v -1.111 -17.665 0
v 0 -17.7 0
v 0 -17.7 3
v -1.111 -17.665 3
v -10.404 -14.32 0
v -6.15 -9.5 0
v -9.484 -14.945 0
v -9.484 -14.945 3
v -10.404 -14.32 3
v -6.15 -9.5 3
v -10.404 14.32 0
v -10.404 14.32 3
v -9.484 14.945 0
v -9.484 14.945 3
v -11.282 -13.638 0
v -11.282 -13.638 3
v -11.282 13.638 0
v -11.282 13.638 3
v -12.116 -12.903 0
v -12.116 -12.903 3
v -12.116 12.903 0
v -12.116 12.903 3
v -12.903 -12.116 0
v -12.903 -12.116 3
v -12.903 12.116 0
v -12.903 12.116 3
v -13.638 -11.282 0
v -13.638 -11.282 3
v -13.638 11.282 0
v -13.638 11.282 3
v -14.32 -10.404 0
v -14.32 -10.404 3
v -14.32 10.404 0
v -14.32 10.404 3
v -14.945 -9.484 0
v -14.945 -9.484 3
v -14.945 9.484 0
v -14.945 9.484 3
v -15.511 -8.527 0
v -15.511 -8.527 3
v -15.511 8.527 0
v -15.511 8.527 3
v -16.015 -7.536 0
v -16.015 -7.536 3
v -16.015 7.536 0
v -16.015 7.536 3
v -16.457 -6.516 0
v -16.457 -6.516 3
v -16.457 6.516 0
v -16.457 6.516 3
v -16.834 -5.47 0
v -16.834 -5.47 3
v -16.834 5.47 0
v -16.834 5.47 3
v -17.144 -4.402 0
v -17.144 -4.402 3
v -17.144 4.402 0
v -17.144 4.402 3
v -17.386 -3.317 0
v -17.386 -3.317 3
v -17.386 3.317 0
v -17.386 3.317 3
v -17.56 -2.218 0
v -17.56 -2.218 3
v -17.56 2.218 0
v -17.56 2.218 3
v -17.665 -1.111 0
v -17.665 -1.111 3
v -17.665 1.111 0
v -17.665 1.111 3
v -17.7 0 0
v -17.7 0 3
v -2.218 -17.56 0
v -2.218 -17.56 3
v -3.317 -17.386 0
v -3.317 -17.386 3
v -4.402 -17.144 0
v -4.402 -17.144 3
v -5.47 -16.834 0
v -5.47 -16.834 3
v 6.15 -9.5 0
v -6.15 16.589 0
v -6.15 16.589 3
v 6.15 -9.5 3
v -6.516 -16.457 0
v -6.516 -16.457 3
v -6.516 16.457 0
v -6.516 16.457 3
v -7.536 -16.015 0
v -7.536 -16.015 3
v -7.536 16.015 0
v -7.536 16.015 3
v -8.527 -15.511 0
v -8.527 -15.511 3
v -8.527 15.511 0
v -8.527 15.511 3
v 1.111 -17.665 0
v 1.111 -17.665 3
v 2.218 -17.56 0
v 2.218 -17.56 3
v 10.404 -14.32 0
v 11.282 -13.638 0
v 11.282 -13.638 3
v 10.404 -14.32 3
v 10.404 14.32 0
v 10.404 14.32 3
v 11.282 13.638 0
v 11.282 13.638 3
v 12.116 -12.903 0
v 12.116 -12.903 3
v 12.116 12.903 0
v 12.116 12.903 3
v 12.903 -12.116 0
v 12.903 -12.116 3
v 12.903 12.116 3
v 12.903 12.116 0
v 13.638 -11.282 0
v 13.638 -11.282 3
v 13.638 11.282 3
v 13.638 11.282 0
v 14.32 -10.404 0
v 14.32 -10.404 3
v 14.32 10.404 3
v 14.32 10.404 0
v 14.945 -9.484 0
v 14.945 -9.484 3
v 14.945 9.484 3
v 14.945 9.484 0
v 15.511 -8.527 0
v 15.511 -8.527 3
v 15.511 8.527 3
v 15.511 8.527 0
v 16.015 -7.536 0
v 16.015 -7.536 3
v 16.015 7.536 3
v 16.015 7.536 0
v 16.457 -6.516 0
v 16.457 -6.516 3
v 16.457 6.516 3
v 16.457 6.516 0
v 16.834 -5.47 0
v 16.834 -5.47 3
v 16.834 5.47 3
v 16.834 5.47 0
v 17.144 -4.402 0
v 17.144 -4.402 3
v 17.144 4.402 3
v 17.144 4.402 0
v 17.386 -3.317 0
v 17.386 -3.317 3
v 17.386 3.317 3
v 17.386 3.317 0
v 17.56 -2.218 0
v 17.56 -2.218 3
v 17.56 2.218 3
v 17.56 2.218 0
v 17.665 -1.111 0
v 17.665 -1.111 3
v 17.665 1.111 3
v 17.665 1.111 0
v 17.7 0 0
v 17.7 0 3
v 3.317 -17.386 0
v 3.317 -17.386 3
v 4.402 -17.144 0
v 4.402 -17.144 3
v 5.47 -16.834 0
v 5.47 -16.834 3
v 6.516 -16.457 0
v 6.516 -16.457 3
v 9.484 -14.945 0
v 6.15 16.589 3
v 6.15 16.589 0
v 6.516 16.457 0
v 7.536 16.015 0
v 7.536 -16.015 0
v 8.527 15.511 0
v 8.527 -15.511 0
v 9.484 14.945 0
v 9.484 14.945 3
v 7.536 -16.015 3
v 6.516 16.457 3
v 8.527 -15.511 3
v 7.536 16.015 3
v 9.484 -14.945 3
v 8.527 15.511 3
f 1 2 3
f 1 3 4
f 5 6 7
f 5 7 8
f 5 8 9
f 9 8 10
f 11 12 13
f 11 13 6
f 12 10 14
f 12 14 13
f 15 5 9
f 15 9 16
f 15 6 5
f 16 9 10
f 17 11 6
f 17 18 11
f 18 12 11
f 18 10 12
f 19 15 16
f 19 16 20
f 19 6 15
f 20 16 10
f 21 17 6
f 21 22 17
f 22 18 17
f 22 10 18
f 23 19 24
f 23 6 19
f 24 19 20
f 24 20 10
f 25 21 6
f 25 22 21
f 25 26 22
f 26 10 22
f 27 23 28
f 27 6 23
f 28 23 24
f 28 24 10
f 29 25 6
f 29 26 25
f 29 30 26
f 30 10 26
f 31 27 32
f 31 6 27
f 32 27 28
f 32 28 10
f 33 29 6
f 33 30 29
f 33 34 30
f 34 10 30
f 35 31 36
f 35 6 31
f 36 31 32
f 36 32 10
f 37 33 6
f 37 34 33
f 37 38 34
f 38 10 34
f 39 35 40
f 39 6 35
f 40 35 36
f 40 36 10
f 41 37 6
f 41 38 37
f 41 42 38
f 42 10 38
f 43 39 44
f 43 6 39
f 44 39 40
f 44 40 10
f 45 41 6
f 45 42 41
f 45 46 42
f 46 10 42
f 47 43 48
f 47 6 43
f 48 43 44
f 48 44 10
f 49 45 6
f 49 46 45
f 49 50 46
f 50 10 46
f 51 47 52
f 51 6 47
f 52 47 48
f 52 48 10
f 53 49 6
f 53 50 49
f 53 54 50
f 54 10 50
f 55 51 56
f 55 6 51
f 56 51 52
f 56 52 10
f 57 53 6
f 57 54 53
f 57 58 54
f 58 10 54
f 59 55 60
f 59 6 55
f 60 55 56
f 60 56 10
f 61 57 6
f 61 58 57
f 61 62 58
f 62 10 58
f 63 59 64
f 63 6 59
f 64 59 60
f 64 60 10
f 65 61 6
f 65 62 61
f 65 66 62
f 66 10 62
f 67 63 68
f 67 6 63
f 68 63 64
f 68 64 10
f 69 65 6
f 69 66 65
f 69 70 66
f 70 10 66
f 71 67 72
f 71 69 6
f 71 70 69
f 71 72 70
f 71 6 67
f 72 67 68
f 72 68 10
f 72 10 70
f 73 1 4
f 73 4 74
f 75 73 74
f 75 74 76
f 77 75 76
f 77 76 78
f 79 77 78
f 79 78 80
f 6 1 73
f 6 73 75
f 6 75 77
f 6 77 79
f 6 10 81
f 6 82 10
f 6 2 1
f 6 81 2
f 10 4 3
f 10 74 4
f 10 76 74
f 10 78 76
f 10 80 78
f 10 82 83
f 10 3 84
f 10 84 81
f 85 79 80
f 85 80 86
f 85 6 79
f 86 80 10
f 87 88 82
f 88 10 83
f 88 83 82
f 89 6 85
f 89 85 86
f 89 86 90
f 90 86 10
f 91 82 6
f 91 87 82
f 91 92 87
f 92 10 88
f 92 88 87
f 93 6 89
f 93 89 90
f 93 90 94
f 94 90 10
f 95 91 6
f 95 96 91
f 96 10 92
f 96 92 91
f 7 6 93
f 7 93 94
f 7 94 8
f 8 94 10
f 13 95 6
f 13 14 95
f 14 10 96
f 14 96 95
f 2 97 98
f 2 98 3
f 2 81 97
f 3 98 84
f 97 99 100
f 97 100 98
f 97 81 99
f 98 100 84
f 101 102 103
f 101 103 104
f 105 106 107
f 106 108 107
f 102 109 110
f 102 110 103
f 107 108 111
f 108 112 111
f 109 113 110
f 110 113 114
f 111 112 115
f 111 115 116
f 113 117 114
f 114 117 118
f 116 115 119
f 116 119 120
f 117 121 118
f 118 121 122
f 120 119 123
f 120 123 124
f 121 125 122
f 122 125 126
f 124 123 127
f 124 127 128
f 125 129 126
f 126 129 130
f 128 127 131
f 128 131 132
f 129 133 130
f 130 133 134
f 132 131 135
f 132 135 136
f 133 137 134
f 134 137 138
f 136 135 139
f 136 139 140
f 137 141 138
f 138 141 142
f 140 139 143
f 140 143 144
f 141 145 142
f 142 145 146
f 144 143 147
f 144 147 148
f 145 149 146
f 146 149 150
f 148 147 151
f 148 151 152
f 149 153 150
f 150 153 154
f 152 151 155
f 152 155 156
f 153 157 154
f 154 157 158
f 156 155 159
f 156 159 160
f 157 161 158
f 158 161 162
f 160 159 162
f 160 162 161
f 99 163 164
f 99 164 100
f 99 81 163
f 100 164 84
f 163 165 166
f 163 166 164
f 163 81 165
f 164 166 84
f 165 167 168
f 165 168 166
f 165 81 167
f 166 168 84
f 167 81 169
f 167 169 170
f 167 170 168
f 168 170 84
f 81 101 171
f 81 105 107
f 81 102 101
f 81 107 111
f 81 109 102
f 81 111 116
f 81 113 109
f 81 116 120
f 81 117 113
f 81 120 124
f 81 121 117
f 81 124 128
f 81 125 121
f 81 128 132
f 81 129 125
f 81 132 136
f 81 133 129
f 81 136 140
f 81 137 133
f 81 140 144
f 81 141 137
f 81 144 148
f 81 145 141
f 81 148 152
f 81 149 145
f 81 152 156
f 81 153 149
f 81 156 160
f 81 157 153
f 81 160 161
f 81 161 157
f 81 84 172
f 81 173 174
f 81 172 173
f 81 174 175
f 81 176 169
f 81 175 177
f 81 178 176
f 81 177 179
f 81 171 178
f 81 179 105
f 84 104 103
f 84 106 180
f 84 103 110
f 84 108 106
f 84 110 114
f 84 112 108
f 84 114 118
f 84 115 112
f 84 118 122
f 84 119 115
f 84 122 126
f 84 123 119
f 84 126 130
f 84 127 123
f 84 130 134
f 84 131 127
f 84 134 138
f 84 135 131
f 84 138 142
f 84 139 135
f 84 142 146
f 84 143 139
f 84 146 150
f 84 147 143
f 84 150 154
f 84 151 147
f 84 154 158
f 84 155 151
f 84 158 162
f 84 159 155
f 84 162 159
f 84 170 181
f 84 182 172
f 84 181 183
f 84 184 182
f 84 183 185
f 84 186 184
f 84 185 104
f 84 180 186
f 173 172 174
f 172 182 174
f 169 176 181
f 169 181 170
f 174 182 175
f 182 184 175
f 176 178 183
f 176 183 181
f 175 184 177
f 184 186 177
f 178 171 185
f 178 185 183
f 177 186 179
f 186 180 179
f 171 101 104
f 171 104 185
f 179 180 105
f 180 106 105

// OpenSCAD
// file: ../src/polyScrewThread_r1.scad
/*
 *    polyScrewThread_r1.scad    by aubenc @ Thingiverse
 *
 * This script contains the library modules that can be used to generate
 * threaded rods, screws and nuts.
 *
 * http://www.thingiverse.com/thing:8796
 *
 * CC Public Domain
 */


/* Example:
 * Just a 100mm long threaded rod.
 *
 * screw_thread(15,   // Outer diameter of the thread
 *               4,   // Step, traveling length per turn, also, tooth height, whatever...
 *              55,   // Degrees for the shape of the tooth 
 *                       (XY plane = 0, Z = 90, btw, 0 and 90 will/should not work...)
 *             100,   // Length (Z) of the tread
 *            PI/2,   // Resolution, one face each "PI/2" mm of the perimeter, 
 *               0);  // Countersink style:
 *                         -2 - Not even flat ends
 *                         -1 - Bottom (countersink'd and top flat)
 *                          0 - None (top and bottom flat)
 *                          1 - Top (bottom flat)
 *                          2 - Both (countersink'd)
 */
module screw_thread(od,st,lf0,lt,rs,cs)
{
    or=od/2;
    ir=or-st/2*cos(lf0)/sin(lf0);
    pf=2*PI*or;
    sn=floor(pf/rs);
    lfxy=360/sn;
    ttn=round(lt/st+1);
    zt=st/sn;

    intersection()
    {
        if (cs >= -1)
        {
           thread_shape(cs,lt,or,ir,sn,st);
        }

        full_thread(ttn,st,sn,zt,lfxy,or,ir);
    }
}

/* Example.
 * A nut for the thread rod example.
 *
 * hexa_nut(24,  // Distance between flats
 *           8,  // Height 
 *           4,  // Step height (the half will be used to countersink the ends)
 *          55,  // Degrees (same as used for the screw_thread example)
 *          15,  // Outer diameter of the thread to match
 *         0.5)  // Resolution, you may want to set this to small values
 *                  (quite high res) to minimize overhang issues
 *
 */
module hex_nut(df,hg,sth,clf,cod,crs)
{

    difference()
    {
        hex_head(hg,df);

        hex_countersink_ends(sth/2,cod,clf,crs,hg);

        screw_thread(cod,sth,clf,hg,crs,-2);
    }
}


module hex_screw(od,st,lf0,lt,rs,cs,df,hg,ntl,ntd)
{
    ntr=od/2-(st/2)*cos(lf0)/sin(lf0);

    union()
    {
        hex_head(hg,df);

        translate([0,0,hg])
        if ( ntl == 0 )
        {
            cylinder(h=0.01, r=ntr, center=true);
        }
        else
        {
            if ( ntd == -1 )
            {
                cylinder(h=ntl+0.01, r=ntr, $fn=floor(od*PI/rs), center=false);
            }
            else if ( ntd == 0 )
            {
                union()
                {
                    cylinder(h=ntl-st/2,
                             r=od/2, $fn=floor(od*PI/rs), center=false);

                    translate([0,0,ntl-st/2])
                    cylinder(h=st/2,
                             r1=od/2, r2=ntr, 
                             $fn=floor(od*PI/rs), center=false);
                }
            }
            else
            {
                cylinder(h=ntl, r=ntd/2, $fn=ntd*PI/rs, center=false);
            }
        }

        translate([0,0,ntl+hg]) screw_thread(od,st,lf0,lt,rs,cs);
    }
}

module hex_screw_0(od,st,lf0,lt,rs,cs,df,hg,ntl,ntd)
{
    ntr=od/2-(st/2)*cos(lf0)/sin(lf0);

    union()
    {
        hex_head_0(hg,df);

        translate([0,0,hg])
        if ( ntl == 0 )
        {
            cylinder(h=0.01, r=ntr, center=true);
        }
        else
        {
            if ( ntd == -1 )
            {
                cylinder(h=ntl+0.01, r=ntr, $fn=floor(od*PI/rs), center=false);
            }
            else if ( ntd == 0 )
            {
                union()
                {
                    cylinder(h=ntl-st/2,
                             r=od/2, $fn=floor(od*PI/rs), center=false);

                    translate([0,0,ntl-st/2])
                    cylinder(h=st/2,
                             r1=od/2, r2=ntr, 
                             $fn=floor(od*PI/rs), center=false);
                }
            }
            else
            {
                cylinder(h=ntl, r=ntd/2, $fn=ntd*PI/rs, center=false);
            }
        }

        translate([0,0,ntl+hg]) screw_thread(od,st,lf0,lt,rs,cs);
    }
}

module thread_shape(cs,lt,or,ir,sn,st)
{
    if ( cs == 0 )
    {
        cylinder(h=lt, r=or, $fn=sn, center=false);
    }
    else
    {
        union()
        {
            translate([0,0,st/2])
              cylinder(h=lt-st+0.005, r=or, $fn=sn, center=false);

            if ( cs == -1 || cs == 2 )
            {
                cylinder(h=st/2, r1=ir, r2=or, $fn=sn, center=false);
            }
            else
            {
                cylinder(h=st/2, r=or, $fn=sn, center=false);
            }

            translate([0,0,lt-st/2])
            if ( cs == 1 || cs == 2 )
            {
                  cylinder(h=st/2, r1=or, r2=ir, $fn=sn, center=false);
            }
            else
            {
                cylinder(h=st/2, r=or, $fn=sn, center=false);
            }
        }
    }
}

module full_thread(ttn,st,sn,zt,lfxy,or,ir)
{
  if(ir >= 0.2)
  {
    for(i=[0:ttn-1])
    {
        for(j=[0:sn-1])
			assign( pt = [	[0,                  0,                  i*st-st            ],
                        [ir*cos(j*lfxy),     ir*sin(j*lfxy),     i*st+j*zt-st       ],
                        [ir*cos((j+1)*lfxy), ir*sin((j+1)*lfxy), i*st+(j+1)*zt-st   ],
								[0,0,i*st],
                        [or*cos(j*lfxy),     or*sin(j*lfxy),     i*st+j*zt-st/2     ],
                        [or*cos((j+1)*lfxy), or*sin((j+1)*lfxy), i*st+(j+1)*zt-st/2 ],
                        [ir*cos(j*lfxy),     ir*sin(j*lfxy),     i*st+j*zt          ],
                        [ir*cos((j+1)*lfxy), ir*sin((j+1)*lfxy), i*st+(j+1)*zt      ],
                        [0,                  0,                  i*st+st            ]	])
        {
            polyhedron(points=pt,
              		  triangles=[	[1,0,3],[1,3,6],[6,3,8],[1,6,4],
											[0,1,2],[1,4,2],[2,4,5],[5,4,6],[5,6,7],[7,6,8],
											[7,8,3],[0,2,3],[3,2,7],[7,2,5]	]);
        }
    }
  }
  else
  {
    echo("Step Degrees too agresive, the thread will not be made!!");
    echo("Try to increase de value for the degrees and/or...");
    echo(" decrease the pitch value and/or...");
    echo(" increase the outer diameter value.");
  }
}

module hex_head(hg,df)
{
	rd0=df/2/sin(60);
	x0=0;	x1=df/2;	x2=x1+hg/2;
	y0=0;	y1=hg/2;	y2=hg;

	intersection()
	{
	   cylinder(h=hg, r=rd0, $fn=6, center=false);

		rotate_extrude(convexity=10, $fn=6*round(df*PI/6/0.5))
		polygon([ [x0,y0],[x1,y0],[x2,y1],[x1,y2],[x0,y2] ]);
	}
}

module hex_head_0(hg,df)
{
    cylinder(h=hg, r=df/2/sin(60), $fn=6, center=false);
}

module hex_countersink_ends(chg,cod,clf,crs,hg)
{
    translate([0,0,-0.1])
    cylinder(h=chg+0.01, 
             r1=cod/2, 
             r2=cod/2-(chg+0.1)*cos(clf)/sin(clf),
             $fn=floor(cod*PI/crs), center=false);

    translate([0,0,hg-chg+0.1])
    cylinder(h=chg+0.01, 
             r1=cod/2-(chg+0.1)*cos(clf)/sin(clf),
             r2=cod/2, 
             $fn=floor(cod*PI/crs), center=false);
}
// file: ../src/WINDGAUGE02A_S03.scad
$fn=40; // model faces resolution.
include <../configuration.scad>

include <polyScrewThread_r1.scad>

//Držák na konektor RJ11

PI=3.141592;
module WINDGAUGE02A_S03()
    {
    difference()
        {
        translate([0,0,0])
            cylinder (h = S01_sila_drzaku_RJ11, r=(S01_prumer_vnitrni)/2-S01_hloubka_zavitu/2-0.3, $fn=100); 
            
        translate([0,0,S01_sila_drzaku_RJ11/2])           
            cube([S01_hrana_A_RJ11,S01_hrana_B_RJ11,S01_sila_drzaku_RJ11+0.01],center=true);

        //otvor až ke kraji
        translate([0,((S01_prumer_vnitrni)/2-S01_hloubka_zavitu/2+0.5)/2,S01_sila_drzaku_RJ11/2])       cube([S01_hrana_A_RJ11,(S01_prumer_vnitrni)/2-S01_hloubka_zavitu/2+0.5,S01_sila_drzaku_RJ11+0.01],center=true);          
        }

    }

   

  
WINDGAUGE02A_S03(); 
// file: ../configuration.scad
$fn=40; // model faces resolution.

//OBECNE PARAMETRY 
//----------------------------------------------------------------
//----------------------------------------------------------------
//WINDGAUGE02A_S02 - Parametry pro hlavni valec anemometru
S01_hloubka_zavitu=4;
S01_vyska=80;
S01_prumer_vnitrni=40;
S01_sila_materialu=1.3;
S01_vyska_horni_zavit=10;
S01_vyska_spodniho_zavitu=10;
S01_sila_drzaku_RJ11=3; //vyška drážky
S01_hrana_A_RJ11=12.3;
S01_hrana_B_RJ11=19;
S01_tolerance_zavit=1.5;

//Obecné parametry
prumer_osicky=5;
sterbina_na_osicku=0.5; //aby nepraskal a držel držák rotoru na hřídelce

//Rozmery modulu se senzorem
senzor_delka=20.32;
senzor_sirka=10.16;
senzor_vyska_IO=2;
senzor_odstup_od_magnetu=2;

//Parametry loziska
lozisko_prumer_vnitrni=4.9;
lozisko_prumer_vnejsi=16.1;
lozisko_vyska=5;
lozisko_prekryv=1.5;

//Parametry magnetu
magnet_prumer=6.3;
magnet_vyska=5;
magnet_zapusteni=4;
magnet_tolerance_prumeru=0.2;

R03_vyska_narezeni_hridelky=5;

//Parametry sroubu
prumer_sroubu=3.4;
prumer_hlavy_sroubu=6;
vyska_hlavy_sroubu=4;
vyska_matky=3;
sirka_matky=6.7;

sirka_matky_tol=0.175;
prumer_orechu=10;

//WINDGAUGE02A_R01 //pro lopatku
L01_hrana_drzaku_a=10;
L01_hrana_drzaku_b=3;
L01_delka_uchytu=6;
L01_prumer_lopatky=40;
L01_sila_materialu_lopatky=1.2;

//WINDGAUGE02A_D01 //uchyt velky
D01_material_pod_zavitem=5;
D01_material_za_zavitem=3;
D01_material_pred_zavitem=2;
D01_delka_tyce=60;
D01_sirka_tyce=10;

//WINDGAUGE02A_D02 //uchyt na sloup
D02_sila_materialu=6;
D02_vyska_uchytky=40;
D02_prumer_obruby=27; 

//27mm - 3/4 trubka
D02_delka_celeho_uchytu=60;
D02_dotahova_vzdalenost=1.5;
D02_prumer_uchytneho_sroubu=4.2;
D02_sirka_matky=9.1; //pro M4
D02_vyska_matky=3;

//WINDGAUGE02A_R01 //rotor s prekritim statoru
R01_vyska_preryti_statoru=10;
R01_sila_materialu_pro_prekriti=1.3;
R01_mezera_mezi_statorem_rotorem=3;

//WINDGAUGE02A_R03 //drzak magnetu
R05_sirka_matky=10;
// main file
include <../configuration.scad>

$fn=100; // model faces resolution.

use <../src/WINDGAUGE02A_S03.scad>
use <../src/polyScrewThread_r1.scad>

translate([0,0,0])
    rotate([0, 0, 0])
        WINDGAUGE02A_S03();   
